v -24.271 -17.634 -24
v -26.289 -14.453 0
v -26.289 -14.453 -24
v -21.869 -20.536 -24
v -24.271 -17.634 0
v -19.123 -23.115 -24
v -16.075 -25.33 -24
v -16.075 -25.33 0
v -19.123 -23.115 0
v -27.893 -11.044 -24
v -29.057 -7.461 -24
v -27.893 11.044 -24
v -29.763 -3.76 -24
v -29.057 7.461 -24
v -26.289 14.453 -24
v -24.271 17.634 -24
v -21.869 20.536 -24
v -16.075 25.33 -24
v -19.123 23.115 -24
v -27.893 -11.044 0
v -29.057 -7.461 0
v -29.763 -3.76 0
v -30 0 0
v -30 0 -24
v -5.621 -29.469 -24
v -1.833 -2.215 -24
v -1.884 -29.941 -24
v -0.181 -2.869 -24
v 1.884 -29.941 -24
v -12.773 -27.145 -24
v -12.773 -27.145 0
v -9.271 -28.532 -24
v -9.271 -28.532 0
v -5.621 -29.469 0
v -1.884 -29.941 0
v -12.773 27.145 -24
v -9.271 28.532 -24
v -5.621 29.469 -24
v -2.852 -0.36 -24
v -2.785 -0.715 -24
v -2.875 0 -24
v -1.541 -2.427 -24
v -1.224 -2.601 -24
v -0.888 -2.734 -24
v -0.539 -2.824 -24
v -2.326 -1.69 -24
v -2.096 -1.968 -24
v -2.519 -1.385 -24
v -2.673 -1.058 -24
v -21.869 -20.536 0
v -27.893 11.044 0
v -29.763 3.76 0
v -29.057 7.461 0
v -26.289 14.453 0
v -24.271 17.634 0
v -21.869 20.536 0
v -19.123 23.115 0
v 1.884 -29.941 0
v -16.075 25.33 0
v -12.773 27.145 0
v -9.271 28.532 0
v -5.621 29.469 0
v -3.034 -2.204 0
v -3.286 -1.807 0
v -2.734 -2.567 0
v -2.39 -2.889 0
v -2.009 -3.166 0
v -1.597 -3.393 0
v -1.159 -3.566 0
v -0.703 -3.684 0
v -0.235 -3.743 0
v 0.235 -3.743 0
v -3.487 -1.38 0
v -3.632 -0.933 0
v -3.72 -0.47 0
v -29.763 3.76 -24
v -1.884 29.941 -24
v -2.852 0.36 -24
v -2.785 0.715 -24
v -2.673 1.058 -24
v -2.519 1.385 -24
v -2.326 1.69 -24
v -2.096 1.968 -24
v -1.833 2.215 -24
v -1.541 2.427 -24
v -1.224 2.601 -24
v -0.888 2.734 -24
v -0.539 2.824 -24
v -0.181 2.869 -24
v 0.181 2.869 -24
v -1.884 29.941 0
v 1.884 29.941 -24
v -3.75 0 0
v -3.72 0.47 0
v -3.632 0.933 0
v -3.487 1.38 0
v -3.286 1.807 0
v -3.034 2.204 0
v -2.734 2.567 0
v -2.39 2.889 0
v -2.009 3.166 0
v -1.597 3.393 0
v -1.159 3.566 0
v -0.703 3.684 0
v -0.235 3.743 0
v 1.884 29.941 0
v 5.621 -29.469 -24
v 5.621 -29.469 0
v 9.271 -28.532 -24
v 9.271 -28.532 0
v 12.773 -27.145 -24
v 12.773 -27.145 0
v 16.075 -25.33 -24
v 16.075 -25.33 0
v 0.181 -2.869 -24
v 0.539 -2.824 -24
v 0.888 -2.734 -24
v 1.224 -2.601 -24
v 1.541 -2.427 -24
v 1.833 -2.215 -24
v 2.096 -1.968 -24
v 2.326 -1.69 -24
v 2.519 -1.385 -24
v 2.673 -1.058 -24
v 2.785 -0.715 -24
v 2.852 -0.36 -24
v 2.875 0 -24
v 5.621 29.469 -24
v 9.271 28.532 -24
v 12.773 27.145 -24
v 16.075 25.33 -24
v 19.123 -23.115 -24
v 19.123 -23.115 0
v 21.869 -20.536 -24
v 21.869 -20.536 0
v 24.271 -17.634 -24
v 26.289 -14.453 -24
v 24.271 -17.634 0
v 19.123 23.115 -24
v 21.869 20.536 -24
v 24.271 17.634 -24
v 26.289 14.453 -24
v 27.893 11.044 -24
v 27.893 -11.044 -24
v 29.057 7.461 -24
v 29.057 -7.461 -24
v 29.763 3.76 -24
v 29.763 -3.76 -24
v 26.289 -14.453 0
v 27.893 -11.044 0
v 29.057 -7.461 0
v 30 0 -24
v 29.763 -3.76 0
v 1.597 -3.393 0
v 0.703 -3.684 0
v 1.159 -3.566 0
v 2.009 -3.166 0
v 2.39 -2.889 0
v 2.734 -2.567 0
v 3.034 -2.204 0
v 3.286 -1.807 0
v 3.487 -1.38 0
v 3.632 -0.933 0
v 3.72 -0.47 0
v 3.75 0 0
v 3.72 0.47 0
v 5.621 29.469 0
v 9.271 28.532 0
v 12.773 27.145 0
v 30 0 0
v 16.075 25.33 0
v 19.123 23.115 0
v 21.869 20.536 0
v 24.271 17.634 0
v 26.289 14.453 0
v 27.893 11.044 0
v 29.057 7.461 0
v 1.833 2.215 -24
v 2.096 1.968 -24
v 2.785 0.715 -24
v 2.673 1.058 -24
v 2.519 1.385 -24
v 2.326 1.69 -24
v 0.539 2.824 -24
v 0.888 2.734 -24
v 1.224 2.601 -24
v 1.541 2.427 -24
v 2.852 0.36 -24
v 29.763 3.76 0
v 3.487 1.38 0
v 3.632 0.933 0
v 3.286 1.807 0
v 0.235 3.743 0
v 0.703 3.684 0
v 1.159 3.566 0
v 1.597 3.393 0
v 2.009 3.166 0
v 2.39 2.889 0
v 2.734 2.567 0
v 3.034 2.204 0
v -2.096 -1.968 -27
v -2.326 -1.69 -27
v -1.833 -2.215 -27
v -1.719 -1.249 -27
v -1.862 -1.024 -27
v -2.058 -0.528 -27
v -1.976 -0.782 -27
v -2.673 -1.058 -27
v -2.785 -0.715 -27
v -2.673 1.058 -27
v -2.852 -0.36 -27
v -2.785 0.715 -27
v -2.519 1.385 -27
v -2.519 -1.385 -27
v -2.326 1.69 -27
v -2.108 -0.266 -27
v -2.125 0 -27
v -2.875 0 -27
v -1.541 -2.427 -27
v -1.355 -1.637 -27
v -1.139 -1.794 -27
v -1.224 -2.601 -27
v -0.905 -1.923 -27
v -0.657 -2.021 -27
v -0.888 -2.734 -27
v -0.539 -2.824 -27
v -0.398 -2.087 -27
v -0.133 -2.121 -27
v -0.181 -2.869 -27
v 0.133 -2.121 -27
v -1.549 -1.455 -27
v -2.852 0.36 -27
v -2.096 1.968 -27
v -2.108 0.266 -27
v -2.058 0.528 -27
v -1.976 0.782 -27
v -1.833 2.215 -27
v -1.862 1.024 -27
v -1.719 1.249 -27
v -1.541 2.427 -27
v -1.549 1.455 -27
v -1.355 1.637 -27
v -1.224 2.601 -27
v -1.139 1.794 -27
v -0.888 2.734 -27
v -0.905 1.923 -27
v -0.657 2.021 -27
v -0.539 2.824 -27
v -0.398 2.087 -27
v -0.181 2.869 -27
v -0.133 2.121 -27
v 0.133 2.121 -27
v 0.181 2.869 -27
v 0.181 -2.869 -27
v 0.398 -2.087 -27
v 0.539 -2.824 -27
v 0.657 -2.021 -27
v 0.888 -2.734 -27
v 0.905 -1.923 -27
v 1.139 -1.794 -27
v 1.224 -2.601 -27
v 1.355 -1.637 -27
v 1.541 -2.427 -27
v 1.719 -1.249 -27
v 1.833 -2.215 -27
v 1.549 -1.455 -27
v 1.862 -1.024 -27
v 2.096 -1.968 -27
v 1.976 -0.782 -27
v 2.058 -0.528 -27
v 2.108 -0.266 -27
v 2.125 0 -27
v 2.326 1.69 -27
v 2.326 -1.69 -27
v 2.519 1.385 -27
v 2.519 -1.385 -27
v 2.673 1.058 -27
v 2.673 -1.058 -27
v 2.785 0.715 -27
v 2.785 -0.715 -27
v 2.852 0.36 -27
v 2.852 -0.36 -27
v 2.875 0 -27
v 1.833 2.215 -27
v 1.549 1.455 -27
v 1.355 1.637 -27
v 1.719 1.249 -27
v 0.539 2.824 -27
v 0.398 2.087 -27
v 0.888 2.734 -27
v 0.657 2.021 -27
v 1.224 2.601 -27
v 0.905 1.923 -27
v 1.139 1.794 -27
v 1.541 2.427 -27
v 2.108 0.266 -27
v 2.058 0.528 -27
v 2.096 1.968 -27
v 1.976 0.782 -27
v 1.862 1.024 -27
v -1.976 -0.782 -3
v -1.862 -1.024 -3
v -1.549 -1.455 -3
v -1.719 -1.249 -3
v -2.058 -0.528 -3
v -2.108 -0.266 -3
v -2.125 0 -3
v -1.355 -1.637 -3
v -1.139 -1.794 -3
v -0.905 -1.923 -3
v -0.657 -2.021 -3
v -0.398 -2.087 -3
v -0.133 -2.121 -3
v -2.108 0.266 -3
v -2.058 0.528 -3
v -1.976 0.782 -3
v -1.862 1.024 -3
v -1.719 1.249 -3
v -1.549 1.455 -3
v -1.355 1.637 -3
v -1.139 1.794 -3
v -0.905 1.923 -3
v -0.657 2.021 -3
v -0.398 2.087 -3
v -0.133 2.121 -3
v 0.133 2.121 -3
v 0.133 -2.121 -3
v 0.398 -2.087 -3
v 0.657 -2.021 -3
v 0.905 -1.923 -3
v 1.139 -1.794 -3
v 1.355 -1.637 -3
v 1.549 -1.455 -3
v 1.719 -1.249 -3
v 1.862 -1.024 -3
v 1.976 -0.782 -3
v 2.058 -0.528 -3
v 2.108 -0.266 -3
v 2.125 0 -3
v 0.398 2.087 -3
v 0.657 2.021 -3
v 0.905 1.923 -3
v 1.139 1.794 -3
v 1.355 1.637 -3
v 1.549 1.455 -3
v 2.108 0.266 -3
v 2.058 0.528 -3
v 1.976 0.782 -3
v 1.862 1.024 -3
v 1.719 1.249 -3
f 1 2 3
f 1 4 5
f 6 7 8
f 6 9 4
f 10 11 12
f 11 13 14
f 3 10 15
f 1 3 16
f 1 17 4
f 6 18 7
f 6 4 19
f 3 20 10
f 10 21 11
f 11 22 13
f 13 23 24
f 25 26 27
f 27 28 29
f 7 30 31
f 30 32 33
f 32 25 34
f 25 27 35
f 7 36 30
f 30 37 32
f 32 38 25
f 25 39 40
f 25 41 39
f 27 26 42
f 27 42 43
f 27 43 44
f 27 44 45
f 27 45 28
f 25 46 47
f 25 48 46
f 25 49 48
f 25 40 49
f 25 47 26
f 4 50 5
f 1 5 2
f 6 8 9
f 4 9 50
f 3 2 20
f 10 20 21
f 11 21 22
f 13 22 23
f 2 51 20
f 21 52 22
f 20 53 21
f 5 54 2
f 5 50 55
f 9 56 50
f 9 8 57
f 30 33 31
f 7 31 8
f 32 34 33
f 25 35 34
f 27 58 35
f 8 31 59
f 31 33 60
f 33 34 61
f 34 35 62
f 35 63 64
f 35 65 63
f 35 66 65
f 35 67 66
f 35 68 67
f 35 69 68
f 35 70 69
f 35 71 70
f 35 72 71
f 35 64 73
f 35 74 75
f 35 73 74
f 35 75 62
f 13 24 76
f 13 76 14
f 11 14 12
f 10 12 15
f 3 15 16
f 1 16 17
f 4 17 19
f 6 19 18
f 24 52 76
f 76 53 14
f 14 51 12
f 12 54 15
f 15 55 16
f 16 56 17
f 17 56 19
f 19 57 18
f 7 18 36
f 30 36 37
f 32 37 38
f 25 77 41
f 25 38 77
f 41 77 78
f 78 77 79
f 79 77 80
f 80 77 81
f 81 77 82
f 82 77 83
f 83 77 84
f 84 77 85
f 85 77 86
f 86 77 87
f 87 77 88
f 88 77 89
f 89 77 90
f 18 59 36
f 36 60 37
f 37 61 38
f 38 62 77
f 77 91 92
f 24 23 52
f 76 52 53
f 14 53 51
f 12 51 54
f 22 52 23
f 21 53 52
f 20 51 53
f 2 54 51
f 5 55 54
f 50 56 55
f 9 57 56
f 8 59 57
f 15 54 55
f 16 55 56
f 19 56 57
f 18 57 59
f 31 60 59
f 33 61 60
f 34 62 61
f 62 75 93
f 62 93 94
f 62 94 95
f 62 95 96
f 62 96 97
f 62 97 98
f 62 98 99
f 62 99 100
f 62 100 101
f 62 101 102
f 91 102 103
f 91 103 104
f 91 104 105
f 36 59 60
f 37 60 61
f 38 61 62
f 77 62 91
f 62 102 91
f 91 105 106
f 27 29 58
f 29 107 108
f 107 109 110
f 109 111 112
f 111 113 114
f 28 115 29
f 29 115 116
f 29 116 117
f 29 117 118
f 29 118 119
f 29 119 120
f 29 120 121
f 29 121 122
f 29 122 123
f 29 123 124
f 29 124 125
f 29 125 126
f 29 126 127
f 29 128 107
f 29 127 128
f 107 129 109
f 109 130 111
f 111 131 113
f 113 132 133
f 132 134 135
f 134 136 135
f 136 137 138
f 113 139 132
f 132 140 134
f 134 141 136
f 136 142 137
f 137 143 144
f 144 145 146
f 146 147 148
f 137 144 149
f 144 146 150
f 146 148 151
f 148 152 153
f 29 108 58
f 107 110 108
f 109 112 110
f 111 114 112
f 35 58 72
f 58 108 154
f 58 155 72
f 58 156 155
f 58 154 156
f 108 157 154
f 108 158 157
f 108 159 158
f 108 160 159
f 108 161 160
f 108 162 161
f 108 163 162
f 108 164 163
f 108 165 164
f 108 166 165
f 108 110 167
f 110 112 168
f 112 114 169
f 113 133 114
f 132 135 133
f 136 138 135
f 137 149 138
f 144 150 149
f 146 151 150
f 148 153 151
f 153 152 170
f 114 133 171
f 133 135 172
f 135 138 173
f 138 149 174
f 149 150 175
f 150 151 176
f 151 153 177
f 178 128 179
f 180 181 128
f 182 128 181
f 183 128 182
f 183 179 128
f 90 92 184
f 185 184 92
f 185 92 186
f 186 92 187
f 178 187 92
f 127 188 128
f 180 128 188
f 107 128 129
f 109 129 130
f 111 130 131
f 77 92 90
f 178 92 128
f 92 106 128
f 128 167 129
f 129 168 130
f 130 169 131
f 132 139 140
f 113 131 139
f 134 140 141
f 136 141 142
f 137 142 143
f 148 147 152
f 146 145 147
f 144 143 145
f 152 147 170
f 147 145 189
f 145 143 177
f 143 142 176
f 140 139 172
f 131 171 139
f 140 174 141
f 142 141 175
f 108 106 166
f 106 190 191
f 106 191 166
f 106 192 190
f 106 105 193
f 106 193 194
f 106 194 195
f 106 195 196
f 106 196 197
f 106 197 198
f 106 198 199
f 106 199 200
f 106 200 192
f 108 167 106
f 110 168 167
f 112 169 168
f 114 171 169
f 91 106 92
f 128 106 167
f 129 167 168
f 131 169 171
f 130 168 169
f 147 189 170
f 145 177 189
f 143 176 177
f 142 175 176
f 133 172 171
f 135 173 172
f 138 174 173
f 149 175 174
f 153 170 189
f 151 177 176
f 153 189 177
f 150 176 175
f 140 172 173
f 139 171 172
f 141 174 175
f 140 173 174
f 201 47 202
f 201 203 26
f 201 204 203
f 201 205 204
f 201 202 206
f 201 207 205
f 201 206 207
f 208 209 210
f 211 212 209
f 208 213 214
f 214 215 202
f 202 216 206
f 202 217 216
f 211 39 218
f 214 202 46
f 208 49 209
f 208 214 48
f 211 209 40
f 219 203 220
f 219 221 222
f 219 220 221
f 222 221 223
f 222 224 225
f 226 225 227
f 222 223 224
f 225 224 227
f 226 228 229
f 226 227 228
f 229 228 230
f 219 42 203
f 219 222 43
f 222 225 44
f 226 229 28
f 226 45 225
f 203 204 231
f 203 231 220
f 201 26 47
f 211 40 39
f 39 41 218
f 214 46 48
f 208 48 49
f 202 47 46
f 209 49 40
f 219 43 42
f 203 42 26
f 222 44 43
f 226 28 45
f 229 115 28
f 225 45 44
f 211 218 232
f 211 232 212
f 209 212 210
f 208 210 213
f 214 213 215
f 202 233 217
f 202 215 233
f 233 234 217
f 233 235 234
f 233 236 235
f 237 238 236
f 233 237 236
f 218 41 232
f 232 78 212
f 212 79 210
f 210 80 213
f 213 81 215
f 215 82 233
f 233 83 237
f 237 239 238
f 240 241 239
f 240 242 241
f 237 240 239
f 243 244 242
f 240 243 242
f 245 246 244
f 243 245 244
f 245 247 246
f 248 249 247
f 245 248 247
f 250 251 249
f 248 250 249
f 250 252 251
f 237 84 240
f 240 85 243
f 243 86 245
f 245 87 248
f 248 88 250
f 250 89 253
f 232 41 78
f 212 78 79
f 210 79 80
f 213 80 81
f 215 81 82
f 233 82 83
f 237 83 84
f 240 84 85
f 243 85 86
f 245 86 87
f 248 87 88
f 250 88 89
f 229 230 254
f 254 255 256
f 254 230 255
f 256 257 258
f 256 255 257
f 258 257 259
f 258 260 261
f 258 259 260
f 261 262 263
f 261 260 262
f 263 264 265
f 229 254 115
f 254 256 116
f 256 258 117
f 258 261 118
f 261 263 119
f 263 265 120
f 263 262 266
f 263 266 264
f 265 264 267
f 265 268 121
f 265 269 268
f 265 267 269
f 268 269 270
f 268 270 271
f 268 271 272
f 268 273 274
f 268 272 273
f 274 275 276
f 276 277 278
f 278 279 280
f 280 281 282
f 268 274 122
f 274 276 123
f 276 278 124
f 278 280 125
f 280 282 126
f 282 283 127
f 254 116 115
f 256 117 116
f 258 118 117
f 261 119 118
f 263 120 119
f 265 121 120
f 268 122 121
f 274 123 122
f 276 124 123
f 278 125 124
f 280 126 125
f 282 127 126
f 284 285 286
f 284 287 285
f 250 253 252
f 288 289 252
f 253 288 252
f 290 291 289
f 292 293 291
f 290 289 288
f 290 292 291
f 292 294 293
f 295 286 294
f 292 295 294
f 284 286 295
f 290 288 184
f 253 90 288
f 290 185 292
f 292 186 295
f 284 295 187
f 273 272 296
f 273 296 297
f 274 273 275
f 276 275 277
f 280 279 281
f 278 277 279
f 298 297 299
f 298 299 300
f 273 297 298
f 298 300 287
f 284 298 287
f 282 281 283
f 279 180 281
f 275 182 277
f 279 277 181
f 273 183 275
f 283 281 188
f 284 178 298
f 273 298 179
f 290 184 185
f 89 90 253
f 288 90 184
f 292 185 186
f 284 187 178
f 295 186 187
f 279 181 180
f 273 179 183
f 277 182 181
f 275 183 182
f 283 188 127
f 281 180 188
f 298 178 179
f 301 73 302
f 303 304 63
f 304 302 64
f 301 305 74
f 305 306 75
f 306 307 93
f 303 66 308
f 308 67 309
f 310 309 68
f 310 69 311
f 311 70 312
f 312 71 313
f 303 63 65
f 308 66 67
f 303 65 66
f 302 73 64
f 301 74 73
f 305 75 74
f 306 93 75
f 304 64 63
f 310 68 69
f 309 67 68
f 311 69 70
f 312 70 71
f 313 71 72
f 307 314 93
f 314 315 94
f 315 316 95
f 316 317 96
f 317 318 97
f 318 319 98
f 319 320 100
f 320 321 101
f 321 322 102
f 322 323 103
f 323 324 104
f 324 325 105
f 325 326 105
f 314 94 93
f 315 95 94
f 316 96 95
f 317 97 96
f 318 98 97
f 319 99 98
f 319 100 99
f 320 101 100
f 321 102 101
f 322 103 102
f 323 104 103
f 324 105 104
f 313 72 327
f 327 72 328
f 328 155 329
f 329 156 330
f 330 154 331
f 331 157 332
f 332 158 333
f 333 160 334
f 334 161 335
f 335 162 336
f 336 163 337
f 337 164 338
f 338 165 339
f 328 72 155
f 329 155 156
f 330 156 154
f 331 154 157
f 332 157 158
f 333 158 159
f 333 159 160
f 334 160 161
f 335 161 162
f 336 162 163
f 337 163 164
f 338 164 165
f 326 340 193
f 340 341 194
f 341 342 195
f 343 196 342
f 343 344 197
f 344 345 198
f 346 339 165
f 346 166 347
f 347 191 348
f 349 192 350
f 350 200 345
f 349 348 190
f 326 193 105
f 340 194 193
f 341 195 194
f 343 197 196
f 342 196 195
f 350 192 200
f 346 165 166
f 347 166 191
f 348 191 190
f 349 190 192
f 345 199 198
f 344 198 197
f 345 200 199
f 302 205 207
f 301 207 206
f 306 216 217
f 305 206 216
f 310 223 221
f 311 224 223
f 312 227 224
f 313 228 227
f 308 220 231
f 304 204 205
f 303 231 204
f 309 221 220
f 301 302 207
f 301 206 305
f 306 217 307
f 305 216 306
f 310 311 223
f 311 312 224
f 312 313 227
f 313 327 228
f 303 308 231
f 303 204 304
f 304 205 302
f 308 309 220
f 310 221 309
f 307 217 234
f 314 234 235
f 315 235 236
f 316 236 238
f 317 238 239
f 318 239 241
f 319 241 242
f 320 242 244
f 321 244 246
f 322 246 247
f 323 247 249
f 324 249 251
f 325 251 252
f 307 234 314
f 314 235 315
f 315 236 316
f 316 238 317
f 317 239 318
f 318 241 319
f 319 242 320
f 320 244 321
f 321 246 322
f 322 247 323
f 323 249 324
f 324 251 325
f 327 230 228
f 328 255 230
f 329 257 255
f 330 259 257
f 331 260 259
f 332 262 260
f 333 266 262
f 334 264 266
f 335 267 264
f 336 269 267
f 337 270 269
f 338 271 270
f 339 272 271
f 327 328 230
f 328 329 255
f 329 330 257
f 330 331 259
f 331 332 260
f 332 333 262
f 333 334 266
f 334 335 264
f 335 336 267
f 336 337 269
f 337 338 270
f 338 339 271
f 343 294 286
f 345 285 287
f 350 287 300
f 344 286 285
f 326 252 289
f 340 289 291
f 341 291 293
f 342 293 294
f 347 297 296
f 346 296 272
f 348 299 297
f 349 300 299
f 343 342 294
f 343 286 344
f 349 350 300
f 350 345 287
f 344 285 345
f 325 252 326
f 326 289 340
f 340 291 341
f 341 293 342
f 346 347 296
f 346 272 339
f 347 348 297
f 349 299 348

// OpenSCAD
$fn = 50;

difference() {
	union() {
		translate(v = [0, 0, -24.0]) {
			cylinder(h = 24, r = 30.0);
		}
		#translate(v = [0, 0, -27.0]) {
			cylinder(h = 27, r = 2.875);
		}
	}
	union() {
		translate(v = [0, 0, 0]) {
			rotate(a = [0, 0, 0]) {
				difference() {
					union() {
						translate(v = [0, 0, -27.0]) {
							cylinder(h = 27, r = 2.0);
						}
						translate(v = [0, 0, -3]) {
							cylinder(h = 3, r1 = 2.125, r2 = 3.75);
						}
						translate(v = [0, 0, -27.0]) {
							cylinder(h = 27, r = 2.125);
						}
						translate(v = [0, 0, -27.0]) {
							cylinder(h = 27, r = 2.0);
						}
					}
					union();
				}
			}
		}
	}
}
